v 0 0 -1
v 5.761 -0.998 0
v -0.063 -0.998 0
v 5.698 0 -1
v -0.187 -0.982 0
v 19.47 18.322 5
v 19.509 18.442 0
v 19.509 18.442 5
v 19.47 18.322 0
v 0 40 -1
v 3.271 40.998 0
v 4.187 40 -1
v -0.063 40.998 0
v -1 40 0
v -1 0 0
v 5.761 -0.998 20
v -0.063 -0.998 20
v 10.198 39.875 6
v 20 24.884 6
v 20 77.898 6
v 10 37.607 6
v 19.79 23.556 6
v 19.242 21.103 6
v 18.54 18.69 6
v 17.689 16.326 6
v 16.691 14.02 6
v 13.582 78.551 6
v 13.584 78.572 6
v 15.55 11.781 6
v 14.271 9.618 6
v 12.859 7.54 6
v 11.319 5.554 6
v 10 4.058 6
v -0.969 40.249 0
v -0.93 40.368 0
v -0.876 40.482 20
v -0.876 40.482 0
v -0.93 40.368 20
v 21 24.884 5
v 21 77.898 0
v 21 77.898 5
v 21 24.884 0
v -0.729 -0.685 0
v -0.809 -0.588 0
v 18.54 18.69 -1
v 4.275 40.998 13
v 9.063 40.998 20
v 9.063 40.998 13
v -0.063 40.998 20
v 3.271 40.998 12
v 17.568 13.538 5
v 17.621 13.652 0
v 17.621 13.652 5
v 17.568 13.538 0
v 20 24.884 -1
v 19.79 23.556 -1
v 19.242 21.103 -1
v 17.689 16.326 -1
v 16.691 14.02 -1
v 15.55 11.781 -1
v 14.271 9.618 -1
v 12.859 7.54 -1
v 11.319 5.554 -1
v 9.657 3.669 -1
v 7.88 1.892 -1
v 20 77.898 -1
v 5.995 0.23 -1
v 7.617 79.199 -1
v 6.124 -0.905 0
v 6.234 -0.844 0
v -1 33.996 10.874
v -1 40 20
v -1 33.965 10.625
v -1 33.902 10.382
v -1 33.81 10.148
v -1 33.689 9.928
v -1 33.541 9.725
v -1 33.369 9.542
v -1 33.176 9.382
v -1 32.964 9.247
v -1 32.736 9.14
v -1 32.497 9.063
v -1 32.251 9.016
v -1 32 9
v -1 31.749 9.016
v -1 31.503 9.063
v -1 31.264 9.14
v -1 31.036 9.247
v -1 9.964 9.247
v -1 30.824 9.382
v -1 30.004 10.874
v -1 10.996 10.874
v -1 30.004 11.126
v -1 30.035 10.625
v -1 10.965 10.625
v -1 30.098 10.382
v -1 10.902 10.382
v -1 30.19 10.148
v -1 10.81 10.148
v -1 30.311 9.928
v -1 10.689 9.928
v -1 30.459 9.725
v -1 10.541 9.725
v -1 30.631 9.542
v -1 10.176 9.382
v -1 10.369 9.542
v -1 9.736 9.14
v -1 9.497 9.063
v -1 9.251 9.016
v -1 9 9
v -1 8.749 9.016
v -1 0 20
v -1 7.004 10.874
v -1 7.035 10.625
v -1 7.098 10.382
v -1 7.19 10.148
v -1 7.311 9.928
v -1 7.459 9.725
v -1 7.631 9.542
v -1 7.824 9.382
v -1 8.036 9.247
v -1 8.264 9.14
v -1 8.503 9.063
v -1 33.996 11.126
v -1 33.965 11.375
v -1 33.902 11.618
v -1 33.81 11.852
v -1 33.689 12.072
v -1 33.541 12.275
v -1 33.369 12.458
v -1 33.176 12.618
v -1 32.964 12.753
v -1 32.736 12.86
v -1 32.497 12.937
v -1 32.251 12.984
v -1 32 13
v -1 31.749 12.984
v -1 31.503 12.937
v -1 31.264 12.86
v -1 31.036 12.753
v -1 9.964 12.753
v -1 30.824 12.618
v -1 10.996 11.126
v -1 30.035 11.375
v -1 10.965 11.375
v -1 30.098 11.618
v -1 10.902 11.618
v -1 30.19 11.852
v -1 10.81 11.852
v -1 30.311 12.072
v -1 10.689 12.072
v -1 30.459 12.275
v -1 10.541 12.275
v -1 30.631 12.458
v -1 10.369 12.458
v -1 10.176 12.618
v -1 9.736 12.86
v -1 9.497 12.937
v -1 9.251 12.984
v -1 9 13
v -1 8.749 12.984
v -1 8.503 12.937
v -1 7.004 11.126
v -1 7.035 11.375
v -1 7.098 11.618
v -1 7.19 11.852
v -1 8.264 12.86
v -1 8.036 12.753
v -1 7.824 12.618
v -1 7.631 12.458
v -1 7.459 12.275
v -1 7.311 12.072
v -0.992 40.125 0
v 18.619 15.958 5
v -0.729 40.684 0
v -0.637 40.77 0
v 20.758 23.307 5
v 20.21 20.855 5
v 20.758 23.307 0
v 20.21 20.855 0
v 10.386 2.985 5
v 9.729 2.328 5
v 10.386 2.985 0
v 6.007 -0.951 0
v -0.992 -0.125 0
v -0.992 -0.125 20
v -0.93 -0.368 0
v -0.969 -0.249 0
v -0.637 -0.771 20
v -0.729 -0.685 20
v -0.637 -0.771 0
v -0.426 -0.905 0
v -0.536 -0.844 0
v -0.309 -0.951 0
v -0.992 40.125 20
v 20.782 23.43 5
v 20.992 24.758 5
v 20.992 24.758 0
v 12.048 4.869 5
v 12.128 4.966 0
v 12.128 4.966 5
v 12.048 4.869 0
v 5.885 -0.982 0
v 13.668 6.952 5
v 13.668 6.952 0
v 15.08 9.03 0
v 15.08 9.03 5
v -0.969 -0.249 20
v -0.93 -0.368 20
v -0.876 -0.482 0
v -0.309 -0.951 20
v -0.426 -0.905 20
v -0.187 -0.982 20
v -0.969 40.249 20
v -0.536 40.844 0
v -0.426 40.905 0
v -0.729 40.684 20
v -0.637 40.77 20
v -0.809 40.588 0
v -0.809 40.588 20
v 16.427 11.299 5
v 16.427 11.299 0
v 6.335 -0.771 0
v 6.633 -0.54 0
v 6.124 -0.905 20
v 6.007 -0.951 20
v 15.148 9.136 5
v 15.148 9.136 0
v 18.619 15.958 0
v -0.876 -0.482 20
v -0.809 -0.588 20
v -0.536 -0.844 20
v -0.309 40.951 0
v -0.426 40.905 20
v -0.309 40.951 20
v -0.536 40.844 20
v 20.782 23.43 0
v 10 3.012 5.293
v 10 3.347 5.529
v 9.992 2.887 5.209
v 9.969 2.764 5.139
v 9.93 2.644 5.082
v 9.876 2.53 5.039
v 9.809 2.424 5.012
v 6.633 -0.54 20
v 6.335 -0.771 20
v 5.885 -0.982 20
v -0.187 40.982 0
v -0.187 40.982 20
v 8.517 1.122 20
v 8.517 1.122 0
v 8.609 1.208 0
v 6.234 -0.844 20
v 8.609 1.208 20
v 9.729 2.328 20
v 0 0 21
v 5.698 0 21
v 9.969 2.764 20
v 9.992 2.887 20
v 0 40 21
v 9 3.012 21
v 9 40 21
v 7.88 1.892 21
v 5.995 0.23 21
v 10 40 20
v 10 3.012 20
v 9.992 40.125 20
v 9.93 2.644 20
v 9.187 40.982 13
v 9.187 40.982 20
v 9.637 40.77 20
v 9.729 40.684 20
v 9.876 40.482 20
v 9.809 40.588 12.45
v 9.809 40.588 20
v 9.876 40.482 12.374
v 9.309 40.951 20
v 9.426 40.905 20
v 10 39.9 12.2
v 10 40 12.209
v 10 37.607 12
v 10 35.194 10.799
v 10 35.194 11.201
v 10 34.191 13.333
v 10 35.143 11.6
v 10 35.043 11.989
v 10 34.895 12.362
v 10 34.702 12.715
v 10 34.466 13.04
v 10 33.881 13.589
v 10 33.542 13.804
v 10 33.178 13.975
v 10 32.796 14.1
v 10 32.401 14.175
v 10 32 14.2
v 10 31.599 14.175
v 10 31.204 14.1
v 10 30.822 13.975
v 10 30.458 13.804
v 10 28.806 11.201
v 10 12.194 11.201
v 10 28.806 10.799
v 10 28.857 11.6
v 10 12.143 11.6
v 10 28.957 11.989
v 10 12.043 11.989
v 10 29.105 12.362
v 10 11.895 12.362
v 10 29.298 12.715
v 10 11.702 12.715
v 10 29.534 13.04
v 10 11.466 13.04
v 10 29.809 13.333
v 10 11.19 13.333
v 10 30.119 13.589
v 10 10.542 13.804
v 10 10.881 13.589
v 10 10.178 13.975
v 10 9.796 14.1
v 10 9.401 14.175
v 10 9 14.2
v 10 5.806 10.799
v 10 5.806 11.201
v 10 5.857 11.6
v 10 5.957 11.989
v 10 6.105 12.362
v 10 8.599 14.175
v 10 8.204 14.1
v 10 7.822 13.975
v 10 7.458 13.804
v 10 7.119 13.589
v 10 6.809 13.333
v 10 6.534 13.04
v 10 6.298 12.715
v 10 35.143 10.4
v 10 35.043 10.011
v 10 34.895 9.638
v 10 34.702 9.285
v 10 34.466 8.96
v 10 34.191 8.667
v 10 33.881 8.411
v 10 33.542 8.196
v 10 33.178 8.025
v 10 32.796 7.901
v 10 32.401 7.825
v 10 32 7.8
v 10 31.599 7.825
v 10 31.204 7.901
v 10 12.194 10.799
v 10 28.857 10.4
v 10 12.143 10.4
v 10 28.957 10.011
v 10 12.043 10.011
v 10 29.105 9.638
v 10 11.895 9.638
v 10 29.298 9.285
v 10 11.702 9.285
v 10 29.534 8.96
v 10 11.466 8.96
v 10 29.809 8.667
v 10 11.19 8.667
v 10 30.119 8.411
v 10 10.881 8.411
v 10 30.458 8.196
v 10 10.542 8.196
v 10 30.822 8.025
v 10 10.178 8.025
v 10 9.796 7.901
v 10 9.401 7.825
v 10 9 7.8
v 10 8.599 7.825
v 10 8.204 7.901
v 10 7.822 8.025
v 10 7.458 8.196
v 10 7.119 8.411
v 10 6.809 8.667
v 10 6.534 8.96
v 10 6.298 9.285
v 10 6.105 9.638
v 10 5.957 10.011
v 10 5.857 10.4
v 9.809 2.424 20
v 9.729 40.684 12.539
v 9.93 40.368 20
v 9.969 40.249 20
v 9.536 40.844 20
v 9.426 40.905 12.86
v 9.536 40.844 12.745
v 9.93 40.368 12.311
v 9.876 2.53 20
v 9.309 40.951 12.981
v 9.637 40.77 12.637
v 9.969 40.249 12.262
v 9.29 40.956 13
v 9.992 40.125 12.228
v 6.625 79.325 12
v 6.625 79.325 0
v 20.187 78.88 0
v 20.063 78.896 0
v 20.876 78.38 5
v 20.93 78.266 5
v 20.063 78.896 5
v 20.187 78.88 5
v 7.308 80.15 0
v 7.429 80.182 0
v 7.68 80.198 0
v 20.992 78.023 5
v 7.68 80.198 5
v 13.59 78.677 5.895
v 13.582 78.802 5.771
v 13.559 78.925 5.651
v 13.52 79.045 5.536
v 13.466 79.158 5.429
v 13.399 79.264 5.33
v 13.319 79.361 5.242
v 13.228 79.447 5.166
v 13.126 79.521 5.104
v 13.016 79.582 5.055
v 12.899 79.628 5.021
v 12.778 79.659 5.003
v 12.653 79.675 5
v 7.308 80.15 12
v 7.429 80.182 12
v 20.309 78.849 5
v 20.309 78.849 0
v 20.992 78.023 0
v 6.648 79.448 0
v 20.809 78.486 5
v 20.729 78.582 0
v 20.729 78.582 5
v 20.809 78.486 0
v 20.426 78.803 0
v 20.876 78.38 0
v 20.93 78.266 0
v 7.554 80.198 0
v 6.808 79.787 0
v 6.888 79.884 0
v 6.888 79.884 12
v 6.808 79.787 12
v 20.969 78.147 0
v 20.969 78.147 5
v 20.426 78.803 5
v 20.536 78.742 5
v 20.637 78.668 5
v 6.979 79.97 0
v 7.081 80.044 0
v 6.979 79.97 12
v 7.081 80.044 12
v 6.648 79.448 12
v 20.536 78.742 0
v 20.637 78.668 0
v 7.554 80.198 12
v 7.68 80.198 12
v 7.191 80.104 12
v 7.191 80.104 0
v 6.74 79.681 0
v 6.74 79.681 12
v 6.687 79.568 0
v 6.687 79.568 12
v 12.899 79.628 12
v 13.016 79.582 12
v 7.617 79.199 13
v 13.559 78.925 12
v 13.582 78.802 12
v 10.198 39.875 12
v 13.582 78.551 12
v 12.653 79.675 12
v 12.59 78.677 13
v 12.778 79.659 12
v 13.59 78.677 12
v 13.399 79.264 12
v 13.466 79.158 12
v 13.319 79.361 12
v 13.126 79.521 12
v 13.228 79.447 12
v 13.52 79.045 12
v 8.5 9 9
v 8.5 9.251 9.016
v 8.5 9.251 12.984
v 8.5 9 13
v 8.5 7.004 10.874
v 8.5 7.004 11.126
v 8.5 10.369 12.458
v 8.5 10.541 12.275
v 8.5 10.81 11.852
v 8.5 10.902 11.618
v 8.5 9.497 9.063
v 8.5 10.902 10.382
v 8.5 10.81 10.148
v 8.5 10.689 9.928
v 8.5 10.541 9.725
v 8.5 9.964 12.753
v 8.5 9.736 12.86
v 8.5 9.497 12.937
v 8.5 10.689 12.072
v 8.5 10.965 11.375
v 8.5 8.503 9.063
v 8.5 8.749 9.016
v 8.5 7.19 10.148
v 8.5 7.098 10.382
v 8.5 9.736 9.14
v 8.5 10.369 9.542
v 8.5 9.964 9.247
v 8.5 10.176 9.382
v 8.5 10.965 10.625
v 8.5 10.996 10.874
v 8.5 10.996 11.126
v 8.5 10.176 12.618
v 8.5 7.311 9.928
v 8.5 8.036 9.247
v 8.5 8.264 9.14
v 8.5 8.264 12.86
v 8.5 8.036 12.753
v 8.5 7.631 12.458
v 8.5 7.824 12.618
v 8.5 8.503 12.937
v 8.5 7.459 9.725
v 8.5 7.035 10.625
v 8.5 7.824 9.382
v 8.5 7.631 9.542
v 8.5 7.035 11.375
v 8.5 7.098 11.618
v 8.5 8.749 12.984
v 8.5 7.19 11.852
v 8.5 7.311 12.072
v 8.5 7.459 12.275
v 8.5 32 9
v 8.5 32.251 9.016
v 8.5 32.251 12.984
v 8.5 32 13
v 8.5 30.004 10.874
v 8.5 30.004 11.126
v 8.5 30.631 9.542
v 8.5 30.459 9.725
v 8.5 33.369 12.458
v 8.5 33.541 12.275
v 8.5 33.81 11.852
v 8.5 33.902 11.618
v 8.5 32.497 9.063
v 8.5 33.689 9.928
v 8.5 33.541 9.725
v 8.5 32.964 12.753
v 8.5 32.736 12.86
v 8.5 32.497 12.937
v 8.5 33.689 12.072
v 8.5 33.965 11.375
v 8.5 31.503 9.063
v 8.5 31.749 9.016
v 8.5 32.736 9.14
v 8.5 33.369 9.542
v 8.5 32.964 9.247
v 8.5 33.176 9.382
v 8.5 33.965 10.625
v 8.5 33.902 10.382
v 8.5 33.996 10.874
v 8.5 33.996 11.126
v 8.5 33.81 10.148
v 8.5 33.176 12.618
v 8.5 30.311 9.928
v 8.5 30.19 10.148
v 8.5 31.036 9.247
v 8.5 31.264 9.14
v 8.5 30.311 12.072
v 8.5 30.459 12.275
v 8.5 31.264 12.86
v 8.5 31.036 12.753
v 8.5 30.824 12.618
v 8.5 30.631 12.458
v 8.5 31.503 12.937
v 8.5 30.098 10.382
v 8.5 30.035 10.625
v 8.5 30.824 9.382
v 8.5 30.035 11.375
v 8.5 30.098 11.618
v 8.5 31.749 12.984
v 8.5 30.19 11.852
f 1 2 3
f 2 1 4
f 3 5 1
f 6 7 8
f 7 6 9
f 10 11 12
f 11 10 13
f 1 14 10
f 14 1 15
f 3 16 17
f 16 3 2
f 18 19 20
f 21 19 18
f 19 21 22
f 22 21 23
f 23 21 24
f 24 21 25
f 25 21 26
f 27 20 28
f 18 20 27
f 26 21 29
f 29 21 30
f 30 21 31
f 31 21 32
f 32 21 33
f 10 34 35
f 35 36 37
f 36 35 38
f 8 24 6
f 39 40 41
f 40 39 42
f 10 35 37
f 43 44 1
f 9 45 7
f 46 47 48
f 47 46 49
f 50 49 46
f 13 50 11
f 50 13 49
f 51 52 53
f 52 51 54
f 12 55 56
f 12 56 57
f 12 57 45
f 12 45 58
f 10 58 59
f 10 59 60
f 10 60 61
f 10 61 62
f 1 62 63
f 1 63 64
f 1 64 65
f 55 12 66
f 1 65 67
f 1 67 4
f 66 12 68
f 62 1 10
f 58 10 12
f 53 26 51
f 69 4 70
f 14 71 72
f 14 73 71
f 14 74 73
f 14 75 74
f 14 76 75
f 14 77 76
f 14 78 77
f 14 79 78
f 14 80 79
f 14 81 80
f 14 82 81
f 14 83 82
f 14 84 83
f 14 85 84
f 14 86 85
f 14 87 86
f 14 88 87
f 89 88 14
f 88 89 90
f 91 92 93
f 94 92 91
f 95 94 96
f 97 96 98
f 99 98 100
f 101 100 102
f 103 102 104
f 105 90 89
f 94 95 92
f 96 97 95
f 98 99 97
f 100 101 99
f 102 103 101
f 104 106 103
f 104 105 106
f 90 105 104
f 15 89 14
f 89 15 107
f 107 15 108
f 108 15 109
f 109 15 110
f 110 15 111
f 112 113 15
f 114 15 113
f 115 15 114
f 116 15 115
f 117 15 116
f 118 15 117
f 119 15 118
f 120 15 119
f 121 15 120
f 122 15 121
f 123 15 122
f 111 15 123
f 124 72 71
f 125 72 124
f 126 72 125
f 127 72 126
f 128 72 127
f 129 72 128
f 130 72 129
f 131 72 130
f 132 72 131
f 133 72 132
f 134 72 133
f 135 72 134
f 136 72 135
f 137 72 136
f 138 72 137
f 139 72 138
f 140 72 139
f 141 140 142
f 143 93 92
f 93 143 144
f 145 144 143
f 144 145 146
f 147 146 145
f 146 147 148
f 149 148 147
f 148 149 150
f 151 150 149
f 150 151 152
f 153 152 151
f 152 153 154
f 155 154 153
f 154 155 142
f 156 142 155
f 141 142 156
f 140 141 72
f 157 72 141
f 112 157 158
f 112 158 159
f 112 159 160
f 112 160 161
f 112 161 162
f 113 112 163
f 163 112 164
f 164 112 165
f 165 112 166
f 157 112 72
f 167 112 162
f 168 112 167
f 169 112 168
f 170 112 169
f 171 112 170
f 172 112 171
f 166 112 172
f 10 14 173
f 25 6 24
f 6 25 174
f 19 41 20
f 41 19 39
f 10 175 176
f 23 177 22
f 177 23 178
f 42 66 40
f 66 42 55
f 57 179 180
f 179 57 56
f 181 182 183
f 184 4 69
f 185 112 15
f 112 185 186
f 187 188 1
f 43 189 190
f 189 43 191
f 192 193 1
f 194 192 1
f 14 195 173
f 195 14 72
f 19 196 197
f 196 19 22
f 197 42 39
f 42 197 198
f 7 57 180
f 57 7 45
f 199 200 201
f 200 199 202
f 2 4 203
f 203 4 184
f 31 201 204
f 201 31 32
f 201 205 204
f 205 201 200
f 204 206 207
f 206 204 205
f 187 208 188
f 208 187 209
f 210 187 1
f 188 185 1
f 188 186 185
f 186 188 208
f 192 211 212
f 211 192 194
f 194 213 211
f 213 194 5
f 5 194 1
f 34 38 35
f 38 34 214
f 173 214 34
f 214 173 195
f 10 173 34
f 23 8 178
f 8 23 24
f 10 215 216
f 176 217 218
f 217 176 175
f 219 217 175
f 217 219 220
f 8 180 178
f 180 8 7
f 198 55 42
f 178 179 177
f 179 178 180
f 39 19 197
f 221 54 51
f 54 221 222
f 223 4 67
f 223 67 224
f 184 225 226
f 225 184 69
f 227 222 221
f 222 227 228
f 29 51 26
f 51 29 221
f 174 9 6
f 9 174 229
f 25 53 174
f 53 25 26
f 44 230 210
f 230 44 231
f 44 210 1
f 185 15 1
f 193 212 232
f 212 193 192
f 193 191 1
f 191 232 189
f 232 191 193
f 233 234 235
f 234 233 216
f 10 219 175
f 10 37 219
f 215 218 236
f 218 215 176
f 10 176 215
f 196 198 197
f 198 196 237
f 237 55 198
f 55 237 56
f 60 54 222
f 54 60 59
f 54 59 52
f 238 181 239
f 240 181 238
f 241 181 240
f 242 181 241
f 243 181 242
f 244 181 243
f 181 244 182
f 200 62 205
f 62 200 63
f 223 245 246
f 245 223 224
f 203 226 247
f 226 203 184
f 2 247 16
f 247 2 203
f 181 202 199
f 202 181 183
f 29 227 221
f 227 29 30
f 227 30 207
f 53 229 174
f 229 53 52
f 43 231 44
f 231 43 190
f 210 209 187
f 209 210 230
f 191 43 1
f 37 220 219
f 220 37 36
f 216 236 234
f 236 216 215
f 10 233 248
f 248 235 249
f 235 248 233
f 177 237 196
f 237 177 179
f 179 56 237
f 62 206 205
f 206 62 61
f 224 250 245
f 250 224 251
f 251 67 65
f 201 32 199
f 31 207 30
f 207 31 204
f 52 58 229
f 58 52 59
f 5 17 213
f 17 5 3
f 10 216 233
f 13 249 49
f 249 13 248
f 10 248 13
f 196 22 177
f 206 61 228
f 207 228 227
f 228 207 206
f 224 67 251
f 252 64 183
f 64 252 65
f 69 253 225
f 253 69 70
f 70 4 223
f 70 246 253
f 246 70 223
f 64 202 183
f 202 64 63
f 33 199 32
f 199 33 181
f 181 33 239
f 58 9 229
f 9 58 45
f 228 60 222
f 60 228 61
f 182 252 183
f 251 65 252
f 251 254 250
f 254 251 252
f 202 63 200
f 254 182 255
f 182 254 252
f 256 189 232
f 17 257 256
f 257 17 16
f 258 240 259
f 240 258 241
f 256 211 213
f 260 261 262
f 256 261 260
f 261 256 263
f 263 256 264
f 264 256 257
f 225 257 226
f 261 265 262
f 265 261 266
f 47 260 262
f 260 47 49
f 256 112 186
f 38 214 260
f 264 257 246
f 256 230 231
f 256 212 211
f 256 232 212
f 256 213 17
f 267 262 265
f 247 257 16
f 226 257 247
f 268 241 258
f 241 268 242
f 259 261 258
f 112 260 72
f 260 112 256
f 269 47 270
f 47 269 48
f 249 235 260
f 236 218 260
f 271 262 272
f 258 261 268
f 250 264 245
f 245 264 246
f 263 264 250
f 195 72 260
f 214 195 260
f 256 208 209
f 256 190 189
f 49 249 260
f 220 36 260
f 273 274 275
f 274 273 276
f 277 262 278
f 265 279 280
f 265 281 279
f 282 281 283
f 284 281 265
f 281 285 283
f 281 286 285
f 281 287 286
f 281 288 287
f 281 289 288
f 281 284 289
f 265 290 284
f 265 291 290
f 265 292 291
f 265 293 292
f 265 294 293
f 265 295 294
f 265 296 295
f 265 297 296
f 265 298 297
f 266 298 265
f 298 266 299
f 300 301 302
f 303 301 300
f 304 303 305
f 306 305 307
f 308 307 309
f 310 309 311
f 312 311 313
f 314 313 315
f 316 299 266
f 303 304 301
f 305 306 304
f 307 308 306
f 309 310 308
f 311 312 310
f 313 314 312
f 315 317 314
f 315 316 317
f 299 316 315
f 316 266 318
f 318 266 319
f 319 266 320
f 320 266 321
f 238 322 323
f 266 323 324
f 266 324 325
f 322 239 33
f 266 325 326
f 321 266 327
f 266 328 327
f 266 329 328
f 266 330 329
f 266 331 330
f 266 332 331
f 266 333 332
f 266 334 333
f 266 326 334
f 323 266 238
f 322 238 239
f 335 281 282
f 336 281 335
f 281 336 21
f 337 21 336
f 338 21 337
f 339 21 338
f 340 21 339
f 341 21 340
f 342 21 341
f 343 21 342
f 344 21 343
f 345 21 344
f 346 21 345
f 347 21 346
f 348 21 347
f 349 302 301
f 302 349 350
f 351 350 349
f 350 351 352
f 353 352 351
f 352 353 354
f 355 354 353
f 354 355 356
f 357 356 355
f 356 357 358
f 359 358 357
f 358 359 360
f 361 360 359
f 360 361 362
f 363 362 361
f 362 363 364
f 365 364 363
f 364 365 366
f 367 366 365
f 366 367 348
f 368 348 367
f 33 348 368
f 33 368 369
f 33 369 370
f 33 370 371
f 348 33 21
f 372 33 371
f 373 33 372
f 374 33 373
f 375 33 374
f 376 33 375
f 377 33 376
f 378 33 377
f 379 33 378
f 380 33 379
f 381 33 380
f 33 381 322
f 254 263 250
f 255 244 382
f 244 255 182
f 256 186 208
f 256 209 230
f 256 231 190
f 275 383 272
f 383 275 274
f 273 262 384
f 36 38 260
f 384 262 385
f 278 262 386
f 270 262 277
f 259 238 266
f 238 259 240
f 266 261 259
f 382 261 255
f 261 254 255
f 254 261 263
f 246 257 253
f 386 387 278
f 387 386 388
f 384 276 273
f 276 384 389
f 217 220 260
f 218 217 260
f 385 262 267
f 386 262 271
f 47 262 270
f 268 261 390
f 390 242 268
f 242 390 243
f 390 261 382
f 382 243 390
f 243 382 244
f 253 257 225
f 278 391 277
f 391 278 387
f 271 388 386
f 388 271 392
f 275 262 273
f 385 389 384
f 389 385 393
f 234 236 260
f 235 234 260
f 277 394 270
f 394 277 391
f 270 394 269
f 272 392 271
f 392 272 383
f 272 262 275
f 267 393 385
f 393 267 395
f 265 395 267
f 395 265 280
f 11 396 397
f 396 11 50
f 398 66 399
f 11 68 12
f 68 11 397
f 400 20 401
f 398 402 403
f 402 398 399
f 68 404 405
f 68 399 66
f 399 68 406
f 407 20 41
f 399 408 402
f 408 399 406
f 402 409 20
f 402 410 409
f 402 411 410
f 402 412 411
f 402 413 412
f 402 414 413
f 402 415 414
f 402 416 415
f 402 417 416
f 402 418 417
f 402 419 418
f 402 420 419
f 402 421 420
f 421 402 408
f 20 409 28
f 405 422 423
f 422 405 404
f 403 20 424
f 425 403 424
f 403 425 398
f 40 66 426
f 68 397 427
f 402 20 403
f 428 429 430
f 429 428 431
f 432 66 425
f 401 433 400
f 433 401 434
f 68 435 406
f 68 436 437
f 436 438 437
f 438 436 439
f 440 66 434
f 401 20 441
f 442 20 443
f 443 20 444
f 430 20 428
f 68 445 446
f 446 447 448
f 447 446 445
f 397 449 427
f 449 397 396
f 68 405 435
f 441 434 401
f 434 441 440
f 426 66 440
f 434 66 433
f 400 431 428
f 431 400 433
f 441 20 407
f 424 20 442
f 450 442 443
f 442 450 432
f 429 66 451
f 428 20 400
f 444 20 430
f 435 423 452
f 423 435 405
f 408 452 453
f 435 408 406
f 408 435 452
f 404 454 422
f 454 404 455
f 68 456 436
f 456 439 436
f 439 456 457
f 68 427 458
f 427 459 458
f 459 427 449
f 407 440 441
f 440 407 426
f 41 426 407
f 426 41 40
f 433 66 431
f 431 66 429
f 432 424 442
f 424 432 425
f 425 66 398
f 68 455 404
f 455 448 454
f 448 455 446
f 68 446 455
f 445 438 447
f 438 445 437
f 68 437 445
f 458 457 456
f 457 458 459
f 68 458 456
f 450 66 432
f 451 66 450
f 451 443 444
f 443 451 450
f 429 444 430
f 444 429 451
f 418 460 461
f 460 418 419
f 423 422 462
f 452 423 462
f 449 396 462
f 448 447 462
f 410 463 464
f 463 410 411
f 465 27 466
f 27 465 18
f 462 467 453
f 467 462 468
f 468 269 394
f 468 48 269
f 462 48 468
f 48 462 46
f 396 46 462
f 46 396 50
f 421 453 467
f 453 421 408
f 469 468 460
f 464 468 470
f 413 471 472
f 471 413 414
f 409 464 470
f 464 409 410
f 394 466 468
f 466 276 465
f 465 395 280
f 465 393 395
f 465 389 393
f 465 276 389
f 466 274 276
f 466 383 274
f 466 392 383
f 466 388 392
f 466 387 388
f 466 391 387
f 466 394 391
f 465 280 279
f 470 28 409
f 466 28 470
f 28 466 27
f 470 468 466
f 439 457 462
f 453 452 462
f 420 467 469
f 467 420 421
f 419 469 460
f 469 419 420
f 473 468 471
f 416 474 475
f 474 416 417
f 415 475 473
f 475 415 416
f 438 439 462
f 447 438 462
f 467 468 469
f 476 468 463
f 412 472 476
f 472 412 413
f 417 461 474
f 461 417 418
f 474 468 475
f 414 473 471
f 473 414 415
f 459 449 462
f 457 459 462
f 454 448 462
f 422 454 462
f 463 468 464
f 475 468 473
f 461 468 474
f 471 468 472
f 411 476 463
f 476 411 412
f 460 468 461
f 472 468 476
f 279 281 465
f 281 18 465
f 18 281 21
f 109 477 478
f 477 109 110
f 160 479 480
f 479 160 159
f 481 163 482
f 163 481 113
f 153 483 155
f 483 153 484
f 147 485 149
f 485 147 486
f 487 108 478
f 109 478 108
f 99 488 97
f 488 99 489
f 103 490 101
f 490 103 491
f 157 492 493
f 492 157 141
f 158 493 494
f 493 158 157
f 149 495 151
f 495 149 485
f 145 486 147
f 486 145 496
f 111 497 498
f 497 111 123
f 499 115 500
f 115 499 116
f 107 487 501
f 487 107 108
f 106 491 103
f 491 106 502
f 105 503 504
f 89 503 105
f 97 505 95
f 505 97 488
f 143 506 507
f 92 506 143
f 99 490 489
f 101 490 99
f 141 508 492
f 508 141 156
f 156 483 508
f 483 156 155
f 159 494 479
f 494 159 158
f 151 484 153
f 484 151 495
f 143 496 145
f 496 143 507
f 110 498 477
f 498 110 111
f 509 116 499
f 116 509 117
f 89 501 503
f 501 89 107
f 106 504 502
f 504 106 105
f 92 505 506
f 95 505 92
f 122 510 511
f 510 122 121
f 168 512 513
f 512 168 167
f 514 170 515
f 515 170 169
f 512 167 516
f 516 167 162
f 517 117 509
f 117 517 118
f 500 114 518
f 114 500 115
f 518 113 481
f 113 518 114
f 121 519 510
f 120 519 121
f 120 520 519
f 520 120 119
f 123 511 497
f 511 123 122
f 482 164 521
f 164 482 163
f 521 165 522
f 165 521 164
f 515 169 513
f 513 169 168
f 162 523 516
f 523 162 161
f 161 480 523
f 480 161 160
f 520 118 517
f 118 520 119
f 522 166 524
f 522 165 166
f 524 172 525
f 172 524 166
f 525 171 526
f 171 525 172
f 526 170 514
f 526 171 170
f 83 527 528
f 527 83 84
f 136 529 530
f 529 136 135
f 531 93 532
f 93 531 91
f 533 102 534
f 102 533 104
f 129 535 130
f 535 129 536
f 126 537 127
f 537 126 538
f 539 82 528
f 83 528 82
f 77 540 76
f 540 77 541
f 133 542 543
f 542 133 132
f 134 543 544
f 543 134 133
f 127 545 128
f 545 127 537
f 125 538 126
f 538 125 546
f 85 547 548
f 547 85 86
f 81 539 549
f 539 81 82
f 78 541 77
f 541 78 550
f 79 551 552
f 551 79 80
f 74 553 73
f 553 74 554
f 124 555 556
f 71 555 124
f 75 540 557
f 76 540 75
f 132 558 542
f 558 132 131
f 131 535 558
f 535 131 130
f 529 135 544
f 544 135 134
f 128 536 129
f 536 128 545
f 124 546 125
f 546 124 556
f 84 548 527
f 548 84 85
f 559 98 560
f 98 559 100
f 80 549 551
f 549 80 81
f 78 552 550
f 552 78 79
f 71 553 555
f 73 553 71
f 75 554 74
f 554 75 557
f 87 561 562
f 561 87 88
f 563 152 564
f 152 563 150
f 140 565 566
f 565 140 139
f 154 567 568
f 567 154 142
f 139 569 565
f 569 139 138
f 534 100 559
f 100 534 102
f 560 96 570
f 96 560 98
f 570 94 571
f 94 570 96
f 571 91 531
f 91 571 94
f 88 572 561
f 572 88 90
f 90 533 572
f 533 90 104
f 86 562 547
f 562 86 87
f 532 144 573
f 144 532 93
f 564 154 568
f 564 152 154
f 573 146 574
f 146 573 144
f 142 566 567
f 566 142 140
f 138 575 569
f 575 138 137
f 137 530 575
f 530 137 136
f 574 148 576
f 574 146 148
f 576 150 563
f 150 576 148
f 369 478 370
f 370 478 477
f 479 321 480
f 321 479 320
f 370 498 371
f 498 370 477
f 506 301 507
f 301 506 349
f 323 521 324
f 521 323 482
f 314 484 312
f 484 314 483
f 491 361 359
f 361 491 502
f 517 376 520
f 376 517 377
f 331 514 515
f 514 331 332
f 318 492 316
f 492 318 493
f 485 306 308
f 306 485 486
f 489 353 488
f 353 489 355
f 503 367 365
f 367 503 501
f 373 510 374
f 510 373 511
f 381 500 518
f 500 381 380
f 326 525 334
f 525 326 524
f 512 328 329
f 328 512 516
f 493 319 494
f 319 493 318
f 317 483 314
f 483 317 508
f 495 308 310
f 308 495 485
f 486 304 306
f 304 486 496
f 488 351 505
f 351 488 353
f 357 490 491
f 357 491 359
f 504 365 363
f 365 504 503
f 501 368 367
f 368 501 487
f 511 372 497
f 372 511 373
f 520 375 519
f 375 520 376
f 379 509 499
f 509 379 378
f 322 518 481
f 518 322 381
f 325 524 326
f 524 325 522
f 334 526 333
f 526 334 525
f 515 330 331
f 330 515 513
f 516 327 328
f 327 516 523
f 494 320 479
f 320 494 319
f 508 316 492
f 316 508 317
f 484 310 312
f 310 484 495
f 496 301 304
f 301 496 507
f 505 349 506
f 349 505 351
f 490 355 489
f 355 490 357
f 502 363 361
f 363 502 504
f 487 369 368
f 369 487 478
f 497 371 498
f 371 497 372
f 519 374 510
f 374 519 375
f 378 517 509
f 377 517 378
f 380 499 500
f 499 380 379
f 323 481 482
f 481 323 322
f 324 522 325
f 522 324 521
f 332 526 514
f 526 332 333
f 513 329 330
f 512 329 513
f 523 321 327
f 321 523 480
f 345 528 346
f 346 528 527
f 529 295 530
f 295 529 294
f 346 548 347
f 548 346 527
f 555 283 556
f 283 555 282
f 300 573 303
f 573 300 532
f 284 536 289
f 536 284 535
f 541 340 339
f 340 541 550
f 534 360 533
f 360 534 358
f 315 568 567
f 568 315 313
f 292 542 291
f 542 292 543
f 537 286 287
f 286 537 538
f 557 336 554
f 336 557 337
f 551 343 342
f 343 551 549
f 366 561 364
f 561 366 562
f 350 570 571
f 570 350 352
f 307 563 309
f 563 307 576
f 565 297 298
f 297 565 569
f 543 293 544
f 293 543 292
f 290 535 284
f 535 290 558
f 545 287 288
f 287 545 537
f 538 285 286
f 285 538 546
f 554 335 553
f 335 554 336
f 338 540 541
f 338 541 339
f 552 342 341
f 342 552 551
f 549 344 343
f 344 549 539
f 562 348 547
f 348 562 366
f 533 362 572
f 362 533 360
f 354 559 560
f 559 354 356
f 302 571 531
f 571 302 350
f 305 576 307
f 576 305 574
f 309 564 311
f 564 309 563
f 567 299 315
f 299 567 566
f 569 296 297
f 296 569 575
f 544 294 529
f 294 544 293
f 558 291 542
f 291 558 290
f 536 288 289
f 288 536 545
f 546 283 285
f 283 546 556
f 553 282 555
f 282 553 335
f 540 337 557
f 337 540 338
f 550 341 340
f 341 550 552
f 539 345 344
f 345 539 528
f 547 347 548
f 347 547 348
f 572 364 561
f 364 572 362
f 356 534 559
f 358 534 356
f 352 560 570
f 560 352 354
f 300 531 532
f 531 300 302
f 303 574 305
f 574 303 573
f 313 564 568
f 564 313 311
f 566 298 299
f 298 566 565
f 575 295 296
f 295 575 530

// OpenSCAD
// designed to hold a large plastic measuring vessel upside down against a wall
difference(){
    minkowski(){
        difference(){
            union(){
                //screw base
                cube([9, 40, 20]);
                //wide flat hook arm
                translate([2, 15, 0]) rotate([0, 0, -5]) cube([5, 80, 12]);
                //support fin
                translate([8, 0, 0]) rotate([0, 0, 0]) cube([12, 85, 5]);
            }
            //smooth tip
            translate([0, 80, -5]) rotate([0, 0, -6]) cube([30, 30, 30]);
            //chamfer bottom edge
            //translate([32, -30, -5]) rotate([0, 0, 45]) cube([40, 40, 40]);
            translate([12, 15, 10]) rotate([0, 0, 108])
            difference(){
                cube([30, 30, 30], center=true);
                translate([25, 25, 5]) cylinder(r1=40, r2=40, h=50, center=true, $fn=100);
            }
            //remove small bit of chaff
            translate([23, 0, 0]) rotate([0, 0, 45]) cube([20, 20, 20], center=true);
                    }
        //mirrored cone buck for adding a chamfer and rounded edges
        union(){
            cylinder(r1=1, r2=0, h=1, $fn=50);
            translate([0, 0, -1]) cylinder(r1=0, r2=1, h=1, $fn=50);
        }
    }
    // origin-most hole
    translate([-10, 9, 11]) rotate([0, 90, 0]) cylinder(r1=2, r2=2, h=30, $fn=50);
    // distal from origin hole
    translate([-10, 32, 11]) rotate([0, 90, 0]) cylinder(r1=2, r2=2, h=30, $fn=50);
    // chamfers for hole edges
    translate([6, 9, 11]) rotate([0, 90, 0]) cylinder(r1=0, r2=4, h=5, $fn=50);
    translate([6, 32, 11]) rotate([0, 90, 0]) cylinder(r1=0, r2=4, h=5, $fn=50);
}
